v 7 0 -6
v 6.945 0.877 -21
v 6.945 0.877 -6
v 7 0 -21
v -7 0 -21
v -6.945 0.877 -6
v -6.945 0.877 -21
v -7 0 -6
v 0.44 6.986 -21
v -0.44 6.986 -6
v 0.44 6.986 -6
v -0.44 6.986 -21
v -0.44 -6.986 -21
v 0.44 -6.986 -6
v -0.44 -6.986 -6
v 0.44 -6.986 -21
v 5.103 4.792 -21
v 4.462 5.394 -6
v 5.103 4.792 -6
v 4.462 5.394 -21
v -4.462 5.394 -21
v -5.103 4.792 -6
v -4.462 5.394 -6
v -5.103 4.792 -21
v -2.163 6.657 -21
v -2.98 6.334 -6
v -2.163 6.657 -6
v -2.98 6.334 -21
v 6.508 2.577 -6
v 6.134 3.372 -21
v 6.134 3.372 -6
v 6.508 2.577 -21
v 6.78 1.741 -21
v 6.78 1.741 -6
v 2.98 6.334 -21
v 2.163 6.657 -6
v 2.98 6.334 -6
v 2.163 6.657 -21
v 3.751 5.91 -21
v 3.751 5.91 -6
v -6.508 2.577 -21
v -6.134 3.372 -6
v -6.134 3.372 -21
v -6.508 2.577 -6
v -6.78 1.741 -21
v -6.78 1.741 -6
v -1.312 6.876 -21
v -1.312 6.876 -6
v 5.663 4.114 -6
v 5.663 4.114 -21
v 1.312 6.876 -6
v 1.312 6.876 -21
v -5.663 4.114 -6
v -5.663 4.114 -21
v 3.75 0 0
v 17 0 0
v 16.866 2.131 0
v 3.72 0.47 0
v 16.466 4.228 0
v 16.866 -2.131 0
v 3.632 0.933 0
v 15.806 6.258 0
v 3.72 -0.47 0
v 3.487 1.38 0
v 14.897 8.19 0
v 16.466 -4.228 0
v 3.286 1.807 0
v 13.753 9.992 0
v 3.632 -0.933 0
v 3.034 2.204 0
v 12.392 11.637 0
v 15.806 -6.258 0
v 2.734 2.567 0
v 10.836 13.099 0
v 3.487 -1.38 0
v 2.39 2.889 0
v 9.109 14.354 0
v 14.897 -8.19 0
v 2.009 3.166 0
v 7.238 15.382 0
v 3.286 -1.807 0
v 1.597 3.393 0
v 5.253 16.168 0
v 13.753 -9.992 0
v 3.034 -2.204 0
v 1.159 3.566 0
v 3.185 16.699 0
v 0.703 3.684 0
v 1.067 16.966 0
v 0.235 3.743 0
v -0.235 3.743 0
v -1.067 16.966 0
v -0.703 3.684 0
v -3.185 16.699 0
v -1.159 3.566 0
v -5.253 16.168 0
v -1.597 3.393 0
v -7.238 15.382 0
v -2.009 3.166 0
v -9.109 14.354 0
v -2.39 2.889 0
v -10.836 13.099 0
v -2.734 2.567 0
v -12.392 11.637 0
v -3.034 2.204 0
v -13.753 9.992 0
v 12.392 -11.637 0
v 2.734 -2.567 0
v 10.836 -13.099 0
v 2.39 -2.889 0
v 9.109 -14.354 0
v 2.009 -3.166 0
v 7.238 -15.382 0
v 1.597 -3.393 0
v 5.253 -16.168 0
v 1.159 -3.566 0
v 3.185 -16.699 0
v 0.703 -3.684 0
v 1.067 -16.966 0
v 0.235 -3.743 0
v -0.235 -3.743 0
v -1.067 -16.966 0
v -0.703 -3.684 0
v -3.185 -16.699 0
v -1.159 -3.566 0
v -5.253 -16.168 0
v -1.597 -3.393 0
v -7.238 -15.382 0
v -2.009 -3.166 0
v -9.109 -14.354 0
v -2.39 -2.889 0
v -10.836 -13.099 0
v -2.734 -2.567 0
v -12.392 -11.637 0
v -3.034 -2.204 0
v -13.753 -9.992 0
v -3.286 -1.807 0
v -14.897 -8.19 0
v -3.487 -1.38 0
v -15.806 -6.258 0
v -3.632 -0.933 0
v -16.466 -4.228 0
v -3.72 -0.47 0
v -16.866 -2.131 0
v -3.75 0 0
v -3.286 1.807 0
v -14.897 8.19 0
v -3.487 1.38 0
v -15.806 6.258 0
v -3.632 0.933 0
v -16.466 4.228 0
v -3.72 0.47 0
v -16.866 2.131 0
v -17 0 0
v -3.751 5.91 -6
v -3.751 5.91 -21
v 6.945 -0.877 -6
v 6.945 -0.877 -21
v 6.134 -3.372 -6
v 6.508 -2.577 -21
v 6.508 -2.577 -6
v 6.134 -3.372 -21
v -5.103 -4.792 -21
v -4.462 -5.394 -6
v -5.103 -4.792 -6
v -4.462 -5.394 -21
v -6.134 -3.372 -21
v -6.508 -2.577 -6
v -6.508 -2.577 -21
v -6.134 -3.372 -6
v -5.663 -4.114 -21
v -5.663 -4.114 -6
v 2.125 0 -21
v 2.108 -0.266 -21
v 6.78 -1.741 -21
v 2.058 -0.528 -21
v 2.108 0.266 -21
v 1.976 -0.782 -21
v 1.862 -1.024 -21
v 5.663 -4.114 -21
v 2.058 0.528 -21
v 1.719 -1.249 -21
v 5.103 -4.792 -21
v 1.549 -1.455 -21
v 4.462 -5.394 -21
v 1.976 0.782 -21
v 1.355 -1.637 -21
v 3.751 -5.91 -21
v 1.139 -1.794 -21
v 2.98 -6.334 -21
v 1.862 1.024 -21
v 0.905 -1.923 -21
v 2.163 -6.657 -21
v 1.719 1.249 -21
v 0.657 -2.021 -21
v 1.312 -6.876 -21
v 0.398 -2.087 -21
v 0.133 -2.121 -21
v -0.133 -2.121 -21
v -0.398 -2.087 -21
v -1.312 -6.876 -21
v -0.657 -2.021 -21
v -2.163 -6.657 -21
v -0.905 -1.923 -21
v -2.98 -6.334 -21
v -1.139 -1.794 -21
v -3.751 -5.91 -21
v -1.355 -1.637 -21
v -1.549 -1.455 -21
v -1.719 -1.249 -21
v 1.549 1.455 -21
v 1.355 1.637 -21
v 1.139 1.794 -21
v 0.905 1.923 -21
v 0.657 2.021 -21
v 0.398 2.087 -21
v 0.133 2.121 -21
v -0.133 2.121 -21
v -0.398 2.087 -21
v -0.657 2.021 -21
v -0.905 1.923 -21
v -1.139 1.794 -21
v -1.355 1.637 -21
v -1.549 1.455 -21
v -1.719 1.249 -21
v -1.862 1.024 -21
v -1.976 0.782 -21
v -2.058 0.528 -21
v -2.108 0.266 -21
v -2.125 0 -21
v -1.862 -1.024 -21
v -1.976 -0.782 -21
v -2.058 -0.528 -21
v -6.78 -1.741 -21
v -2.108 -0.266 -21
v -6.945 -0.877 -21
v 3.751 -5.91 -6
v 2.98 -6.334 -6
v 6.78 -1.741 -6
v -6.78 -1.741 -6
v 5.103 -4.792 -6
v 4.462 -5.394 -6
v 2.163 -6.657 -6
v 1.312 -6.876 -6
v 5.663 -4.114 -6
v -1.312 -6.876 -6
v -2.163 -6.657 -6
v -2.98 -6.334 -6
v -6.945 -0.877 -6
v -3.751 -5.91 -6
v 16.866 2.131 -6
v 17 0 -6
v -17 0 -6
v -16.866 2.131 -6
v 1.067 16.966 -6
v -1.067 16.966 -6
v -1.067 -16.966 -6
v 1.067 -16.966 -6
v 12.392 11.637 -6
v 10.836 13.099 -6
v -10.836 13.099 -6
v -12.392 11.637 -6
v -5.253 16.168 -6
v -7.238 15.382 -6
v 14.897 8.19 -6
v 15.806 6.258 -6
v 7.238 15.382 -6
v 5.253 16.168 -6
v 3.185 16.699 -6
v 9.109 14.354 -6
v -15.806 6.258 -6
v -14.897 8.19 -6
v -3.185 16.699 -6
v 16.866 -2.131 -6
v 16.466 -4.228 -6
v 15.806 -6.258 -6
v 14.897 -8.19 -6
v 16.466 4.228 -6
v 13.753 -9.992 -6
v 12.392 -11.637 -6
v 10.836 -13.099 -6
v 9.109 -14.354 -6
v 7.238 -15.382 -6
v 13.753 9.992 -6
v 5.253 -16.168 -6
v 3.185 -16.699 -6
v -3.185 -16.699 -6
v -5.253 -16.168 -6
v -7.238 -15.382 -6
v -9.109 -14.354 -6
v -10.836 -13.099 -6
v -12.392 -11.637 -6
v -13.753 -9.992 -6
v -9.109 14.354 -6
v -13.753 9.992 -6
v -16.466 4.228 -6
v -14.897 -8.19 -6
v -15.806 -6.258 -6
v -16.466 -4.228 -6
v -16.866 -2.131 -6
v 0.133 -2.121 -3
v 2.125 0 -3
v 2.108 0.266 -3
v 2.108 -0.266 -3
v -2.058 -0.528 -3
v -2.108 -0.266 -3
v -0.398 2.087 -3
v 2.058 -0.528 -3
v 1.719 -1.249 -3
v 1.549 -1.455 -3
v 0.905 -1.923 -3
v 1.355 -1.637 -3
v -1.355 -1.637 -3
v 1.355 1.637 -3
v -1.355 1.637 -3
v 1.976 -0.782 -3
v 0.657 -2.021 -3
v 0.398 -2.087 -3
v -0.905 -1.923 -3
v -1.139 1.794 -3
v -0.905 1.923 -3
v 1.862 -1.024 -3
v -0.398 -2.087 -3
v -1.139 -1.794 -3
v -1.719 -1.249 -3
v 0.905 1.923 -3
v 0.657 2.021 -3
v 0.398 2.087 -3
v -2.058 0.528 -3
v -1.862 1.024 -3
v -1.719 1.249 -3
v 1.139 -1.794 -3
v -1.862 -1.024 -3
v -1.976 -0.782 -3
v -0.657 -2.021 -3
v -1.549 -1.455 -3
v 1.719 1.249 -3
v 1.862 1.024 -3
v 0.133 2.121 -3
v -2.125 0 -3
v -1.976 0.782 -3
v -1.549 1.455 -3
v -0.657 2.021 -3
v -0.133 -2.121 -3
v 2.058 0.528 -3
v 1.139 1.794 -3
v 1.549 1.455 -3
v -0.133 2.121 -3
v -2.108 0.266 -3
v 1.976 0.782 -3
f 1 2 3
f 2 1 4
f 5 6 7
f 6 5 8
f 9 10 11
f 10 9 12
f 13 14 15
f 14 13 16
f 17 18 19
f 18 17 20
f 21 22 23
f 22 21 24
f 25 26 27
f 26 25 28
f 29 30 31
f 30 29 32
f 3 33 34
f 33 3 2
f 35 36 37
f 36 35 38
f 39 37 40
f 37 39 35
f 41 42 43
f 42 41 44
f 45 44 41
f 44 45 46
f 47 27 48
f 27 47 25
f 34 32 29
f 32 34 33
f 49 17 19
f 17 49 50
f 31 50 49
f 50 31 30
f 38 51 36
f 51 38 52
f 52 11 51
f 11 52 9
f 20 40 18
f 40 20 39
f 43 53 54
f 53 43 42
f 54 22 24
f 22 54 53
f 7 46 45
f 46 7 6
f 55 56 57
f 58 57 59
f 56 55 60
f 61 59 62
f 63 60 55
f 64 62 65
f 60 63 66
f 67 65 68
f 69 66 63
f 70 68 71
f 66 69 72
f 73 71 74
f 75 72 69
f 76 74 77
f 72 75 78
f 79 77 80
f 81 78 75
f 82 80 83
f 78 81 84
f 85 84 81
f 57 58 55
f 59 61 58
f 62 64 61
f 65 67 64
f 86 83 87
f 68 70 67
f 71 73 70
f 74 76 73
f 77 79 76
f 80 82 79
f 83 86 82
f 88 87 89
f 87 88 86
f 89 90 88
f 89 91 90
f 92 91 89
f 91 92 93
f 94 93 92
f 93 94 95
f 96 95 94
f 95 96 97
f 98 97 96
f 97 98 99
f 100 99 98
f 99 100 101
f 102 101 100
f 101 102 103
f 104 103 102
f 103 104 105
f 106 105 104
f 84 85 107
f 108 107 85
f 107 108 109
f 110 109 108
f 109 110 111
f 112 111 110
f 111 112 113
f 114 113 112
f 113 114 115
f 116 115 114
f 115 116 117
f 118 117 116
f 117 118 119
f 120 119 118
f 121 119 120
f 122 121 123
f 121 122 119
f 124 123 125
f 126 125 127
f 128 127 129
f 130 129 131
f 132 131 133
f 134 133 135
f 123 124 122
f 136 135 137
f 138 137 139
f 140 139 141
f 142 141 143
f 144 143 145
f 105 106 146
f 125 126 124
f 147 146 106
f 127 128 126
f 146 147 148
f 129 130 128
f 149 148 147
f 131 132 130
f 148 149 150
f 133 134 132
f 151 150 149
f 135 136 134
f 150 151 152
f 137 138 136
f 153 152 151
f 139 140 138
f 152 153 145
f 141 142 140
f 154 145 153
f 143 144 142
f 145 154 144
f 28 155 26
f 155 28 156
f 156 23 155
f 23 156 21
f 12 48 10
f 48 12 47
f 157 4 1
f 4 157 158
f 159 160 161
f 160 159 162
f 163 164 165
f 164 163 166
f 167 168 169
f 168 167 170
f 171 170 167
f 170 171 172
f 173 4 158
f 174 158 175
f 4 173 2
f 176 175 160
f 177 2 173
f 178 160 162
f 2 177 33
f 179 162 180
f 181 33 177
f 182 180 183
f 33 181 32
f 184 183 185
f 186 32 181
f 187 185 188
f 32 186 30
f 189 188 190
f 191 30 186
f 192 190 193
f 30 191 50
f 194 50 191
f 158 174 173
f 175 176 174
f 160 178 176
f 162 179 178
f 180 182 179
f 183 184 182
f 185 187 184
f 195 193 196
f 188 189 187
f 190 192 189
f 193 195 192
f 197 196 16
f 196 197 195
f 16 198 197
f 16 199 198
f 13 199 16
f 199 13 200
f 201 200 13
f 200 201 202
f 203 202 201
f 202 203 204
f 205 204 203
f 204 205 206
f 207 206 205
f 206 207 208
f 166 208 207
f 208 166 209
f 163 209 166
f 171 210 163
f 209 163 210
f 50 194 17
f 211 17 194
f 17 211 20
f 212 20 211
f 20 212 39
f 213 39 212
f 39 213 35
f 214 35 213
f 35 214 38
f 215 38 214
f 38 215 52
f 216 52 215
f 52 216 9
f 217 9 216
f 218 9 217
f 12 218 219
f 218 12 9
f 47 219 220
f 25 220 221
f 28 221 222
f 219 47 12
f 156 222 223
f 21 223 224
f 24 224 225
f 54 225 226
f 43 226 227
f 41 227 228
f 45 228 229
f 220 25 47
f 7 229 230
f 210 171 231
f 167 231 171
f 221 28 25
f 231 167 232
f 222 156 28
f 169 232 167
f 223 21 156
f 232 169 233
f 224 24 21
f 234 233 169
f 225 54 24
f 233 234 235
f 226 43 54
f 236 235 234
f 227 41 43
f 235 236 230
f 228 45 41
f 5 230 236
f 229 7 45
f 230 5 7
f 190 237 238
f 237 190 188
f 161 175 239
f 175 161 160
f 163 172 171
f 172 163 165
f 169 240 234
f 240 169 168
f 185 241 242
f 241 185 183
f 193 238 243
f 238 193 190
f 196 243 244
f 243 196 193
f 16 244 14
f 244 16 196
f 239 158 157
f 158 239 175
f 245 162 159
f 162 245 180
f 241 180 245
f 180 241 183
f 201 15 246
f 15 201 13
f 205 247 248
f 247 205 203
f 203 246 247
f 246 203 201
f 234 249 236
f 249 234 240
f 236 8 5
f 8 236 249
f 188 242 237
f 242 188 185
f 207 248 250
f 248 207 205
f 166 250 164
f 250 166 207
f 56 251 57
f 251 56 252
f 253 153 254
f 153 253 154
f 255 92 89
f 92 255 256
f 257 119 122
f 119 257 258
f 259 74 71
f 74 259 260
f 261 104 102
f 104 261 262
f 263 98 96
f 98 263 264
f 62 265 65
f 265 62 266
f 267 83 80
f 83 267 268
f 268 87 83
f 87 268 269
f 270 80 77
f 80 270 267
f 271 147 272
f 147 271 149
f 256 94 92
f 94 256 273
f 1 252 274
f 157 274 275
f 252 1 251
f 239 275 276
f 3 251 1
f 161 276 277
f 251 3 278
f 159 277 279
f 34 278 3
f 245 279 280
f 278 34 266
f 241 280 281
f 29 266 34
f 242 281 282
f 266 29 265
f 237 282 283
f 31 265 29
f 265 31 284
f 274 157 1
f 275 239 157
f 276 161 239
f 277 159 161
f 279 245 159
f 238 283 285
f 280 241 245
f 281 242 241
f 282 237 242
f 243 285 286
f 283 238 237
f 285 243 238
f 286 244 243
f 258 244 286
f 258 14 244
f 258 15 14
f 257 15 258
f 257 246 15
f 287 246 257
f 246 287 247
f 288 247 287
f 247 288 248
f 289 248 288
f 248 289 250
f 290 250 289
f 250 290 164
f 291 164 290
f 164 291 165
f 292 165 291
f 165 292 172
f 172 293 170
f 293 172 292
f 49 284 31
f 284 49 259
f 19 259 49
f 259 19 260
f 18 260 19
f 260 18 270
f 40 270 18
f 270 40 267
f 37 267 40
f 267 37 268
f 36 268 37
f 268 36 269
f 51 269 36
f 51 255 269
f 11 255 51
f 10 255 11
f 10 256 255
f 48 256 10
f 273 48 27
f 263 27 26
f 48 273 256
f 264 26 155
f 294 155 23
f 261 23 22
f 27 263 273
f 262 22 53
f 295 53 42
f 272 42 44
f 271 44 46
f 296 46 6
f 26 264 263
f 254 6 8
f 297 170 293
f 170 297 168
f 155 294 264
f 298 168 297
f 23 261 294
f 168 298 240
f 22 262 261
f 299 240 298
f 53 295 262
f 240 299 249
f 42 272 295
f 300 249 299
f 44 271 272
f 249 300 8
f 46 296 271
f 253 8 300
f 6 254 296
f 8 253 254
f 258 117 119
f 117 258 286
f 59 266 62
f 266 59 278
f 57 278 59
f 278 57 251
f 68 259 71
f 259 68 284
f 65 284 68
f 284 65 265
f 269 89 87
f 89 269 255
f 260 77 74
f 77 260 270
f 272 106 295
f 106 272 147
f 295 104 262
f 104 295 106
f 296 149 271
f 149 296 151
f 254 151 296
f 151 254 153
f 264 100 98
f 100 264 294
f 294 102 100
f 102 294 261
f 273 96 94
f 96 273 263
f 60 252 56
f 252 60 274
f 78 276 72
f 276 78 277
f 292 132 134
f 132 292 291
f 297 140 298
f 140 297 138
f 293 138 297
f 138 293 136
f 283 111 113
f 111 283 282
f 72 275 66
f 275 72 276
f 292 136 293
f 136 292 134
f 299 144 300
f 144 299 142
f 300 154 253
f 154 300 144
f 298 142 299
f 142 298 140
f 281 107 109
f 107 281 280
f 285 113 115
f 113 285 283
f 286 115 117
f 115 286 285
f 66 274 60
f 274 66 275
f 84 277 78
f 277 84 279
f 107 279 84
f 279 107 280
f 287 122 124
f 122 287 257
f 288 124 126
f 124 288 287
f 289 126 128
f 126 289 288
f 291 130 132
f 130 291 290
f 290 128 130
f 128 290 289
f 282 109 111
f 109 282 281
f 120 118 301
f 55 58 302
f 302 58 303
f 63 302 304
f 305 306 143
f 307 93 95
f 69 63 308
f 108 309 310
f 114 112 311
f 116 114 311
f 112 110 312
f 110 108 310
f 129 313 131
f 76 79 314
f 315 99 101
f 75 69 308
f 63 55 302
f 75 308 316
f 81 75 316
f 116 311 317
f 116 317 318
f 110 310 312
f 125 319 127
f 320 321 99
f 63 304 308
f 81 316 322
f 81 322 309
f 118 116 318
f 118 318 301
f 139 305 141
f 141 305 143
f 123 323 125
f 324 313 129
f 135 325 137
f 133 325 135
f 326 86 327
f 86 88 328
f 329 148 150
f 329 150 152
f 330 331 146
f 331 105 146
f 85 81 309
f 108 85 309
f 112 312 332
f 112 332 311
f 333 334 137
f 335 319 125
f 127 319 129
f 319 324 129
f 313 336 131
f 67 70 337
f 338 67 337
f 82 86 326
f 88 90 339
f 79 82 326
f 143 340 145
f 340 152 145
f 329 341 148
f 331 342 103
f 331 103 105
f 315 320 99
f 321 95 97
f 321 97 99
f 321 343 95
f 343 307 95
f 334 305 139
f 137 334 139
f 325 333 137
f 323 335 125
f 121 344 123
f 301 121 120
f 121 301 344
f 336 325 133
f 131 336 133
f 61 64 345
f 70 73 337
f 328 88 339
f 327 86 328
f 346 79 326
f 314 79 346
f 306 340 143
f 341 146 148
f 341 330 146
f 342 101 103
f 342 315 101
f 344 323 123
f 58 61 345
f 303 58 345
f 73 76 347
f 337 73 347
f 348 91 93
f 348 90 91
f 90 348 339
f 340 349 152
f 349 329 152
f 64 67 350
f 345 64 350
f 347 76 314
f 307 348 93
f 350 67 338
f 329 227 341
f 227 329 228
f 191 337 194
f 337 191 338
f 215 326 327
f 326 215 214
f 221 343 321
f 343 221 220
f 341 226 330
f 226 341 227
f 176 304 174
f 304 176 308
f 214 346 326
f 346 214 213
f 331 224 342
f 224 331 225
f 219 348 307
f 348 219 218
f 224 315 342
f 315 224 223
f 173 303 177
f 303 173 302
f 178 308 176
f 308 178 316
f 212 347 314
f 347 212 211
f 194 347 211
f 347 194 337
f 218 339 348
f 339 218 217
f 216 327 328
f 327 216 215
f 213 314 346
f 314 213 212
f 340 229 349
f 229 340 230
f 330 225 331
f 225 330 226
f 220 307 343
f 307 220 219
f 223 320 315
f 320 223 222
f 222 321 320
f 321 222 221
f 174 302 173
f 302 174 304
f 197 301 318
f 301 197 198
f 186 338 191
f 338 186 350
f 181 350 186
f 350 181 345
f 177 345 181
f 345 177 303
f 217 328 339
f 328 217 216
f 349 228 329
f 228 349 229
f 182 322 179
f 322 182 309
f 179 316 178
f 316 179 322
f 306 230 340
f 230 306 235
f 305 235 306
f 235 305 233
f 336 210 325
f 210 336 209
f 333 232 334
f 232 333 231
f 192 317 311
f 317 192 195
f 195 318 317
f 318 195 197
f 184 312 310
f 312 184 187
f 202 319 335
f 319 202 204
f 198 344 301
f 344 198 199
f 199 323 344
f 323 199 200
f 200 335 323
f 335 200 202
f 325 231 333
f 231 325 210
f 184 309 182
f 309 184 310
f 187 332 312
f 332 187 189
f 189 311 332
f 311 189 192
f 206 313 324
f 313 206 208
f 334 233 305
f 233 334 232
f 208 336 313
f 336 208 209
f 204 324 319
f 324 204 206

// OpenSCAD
$fn = 50;


difference() {
	union() {
		translate(v = [0, 0, -21.0000000000]) {
			cylinder(h = 21, r = 7.0000000000);
		}
		translate(v = [0, 0, -6.0000000000]) {
			cylinder(h = 6, r = 17.0000000000);
		}
	}
	union() {
		translate(v = [0, 0, 0]) {
			rotate(a = [0, 0, 0]) {
				difference() {
					union() {
						#translate(v = [0, 0, -21.0000000000]) {
							cylinder(h = 21, r = 2.0000000000);
						}
						#translate(v = [0, 0, -3]) {
							cylinder(h = 3, r1 = 2.1250000000, r2 = 3.7500000000);
						}
						#translate(v = [0, 0, -21.0000000000]) {
							cylinder(h = 21, r = 2.1250000000);
						}
						#translate(v = [0, 0, -21.0000000000]) {
							cylinder(h = 21, r = 2.0000000000);
						}
					}
					union();
				}
			}
		}
	}
}
